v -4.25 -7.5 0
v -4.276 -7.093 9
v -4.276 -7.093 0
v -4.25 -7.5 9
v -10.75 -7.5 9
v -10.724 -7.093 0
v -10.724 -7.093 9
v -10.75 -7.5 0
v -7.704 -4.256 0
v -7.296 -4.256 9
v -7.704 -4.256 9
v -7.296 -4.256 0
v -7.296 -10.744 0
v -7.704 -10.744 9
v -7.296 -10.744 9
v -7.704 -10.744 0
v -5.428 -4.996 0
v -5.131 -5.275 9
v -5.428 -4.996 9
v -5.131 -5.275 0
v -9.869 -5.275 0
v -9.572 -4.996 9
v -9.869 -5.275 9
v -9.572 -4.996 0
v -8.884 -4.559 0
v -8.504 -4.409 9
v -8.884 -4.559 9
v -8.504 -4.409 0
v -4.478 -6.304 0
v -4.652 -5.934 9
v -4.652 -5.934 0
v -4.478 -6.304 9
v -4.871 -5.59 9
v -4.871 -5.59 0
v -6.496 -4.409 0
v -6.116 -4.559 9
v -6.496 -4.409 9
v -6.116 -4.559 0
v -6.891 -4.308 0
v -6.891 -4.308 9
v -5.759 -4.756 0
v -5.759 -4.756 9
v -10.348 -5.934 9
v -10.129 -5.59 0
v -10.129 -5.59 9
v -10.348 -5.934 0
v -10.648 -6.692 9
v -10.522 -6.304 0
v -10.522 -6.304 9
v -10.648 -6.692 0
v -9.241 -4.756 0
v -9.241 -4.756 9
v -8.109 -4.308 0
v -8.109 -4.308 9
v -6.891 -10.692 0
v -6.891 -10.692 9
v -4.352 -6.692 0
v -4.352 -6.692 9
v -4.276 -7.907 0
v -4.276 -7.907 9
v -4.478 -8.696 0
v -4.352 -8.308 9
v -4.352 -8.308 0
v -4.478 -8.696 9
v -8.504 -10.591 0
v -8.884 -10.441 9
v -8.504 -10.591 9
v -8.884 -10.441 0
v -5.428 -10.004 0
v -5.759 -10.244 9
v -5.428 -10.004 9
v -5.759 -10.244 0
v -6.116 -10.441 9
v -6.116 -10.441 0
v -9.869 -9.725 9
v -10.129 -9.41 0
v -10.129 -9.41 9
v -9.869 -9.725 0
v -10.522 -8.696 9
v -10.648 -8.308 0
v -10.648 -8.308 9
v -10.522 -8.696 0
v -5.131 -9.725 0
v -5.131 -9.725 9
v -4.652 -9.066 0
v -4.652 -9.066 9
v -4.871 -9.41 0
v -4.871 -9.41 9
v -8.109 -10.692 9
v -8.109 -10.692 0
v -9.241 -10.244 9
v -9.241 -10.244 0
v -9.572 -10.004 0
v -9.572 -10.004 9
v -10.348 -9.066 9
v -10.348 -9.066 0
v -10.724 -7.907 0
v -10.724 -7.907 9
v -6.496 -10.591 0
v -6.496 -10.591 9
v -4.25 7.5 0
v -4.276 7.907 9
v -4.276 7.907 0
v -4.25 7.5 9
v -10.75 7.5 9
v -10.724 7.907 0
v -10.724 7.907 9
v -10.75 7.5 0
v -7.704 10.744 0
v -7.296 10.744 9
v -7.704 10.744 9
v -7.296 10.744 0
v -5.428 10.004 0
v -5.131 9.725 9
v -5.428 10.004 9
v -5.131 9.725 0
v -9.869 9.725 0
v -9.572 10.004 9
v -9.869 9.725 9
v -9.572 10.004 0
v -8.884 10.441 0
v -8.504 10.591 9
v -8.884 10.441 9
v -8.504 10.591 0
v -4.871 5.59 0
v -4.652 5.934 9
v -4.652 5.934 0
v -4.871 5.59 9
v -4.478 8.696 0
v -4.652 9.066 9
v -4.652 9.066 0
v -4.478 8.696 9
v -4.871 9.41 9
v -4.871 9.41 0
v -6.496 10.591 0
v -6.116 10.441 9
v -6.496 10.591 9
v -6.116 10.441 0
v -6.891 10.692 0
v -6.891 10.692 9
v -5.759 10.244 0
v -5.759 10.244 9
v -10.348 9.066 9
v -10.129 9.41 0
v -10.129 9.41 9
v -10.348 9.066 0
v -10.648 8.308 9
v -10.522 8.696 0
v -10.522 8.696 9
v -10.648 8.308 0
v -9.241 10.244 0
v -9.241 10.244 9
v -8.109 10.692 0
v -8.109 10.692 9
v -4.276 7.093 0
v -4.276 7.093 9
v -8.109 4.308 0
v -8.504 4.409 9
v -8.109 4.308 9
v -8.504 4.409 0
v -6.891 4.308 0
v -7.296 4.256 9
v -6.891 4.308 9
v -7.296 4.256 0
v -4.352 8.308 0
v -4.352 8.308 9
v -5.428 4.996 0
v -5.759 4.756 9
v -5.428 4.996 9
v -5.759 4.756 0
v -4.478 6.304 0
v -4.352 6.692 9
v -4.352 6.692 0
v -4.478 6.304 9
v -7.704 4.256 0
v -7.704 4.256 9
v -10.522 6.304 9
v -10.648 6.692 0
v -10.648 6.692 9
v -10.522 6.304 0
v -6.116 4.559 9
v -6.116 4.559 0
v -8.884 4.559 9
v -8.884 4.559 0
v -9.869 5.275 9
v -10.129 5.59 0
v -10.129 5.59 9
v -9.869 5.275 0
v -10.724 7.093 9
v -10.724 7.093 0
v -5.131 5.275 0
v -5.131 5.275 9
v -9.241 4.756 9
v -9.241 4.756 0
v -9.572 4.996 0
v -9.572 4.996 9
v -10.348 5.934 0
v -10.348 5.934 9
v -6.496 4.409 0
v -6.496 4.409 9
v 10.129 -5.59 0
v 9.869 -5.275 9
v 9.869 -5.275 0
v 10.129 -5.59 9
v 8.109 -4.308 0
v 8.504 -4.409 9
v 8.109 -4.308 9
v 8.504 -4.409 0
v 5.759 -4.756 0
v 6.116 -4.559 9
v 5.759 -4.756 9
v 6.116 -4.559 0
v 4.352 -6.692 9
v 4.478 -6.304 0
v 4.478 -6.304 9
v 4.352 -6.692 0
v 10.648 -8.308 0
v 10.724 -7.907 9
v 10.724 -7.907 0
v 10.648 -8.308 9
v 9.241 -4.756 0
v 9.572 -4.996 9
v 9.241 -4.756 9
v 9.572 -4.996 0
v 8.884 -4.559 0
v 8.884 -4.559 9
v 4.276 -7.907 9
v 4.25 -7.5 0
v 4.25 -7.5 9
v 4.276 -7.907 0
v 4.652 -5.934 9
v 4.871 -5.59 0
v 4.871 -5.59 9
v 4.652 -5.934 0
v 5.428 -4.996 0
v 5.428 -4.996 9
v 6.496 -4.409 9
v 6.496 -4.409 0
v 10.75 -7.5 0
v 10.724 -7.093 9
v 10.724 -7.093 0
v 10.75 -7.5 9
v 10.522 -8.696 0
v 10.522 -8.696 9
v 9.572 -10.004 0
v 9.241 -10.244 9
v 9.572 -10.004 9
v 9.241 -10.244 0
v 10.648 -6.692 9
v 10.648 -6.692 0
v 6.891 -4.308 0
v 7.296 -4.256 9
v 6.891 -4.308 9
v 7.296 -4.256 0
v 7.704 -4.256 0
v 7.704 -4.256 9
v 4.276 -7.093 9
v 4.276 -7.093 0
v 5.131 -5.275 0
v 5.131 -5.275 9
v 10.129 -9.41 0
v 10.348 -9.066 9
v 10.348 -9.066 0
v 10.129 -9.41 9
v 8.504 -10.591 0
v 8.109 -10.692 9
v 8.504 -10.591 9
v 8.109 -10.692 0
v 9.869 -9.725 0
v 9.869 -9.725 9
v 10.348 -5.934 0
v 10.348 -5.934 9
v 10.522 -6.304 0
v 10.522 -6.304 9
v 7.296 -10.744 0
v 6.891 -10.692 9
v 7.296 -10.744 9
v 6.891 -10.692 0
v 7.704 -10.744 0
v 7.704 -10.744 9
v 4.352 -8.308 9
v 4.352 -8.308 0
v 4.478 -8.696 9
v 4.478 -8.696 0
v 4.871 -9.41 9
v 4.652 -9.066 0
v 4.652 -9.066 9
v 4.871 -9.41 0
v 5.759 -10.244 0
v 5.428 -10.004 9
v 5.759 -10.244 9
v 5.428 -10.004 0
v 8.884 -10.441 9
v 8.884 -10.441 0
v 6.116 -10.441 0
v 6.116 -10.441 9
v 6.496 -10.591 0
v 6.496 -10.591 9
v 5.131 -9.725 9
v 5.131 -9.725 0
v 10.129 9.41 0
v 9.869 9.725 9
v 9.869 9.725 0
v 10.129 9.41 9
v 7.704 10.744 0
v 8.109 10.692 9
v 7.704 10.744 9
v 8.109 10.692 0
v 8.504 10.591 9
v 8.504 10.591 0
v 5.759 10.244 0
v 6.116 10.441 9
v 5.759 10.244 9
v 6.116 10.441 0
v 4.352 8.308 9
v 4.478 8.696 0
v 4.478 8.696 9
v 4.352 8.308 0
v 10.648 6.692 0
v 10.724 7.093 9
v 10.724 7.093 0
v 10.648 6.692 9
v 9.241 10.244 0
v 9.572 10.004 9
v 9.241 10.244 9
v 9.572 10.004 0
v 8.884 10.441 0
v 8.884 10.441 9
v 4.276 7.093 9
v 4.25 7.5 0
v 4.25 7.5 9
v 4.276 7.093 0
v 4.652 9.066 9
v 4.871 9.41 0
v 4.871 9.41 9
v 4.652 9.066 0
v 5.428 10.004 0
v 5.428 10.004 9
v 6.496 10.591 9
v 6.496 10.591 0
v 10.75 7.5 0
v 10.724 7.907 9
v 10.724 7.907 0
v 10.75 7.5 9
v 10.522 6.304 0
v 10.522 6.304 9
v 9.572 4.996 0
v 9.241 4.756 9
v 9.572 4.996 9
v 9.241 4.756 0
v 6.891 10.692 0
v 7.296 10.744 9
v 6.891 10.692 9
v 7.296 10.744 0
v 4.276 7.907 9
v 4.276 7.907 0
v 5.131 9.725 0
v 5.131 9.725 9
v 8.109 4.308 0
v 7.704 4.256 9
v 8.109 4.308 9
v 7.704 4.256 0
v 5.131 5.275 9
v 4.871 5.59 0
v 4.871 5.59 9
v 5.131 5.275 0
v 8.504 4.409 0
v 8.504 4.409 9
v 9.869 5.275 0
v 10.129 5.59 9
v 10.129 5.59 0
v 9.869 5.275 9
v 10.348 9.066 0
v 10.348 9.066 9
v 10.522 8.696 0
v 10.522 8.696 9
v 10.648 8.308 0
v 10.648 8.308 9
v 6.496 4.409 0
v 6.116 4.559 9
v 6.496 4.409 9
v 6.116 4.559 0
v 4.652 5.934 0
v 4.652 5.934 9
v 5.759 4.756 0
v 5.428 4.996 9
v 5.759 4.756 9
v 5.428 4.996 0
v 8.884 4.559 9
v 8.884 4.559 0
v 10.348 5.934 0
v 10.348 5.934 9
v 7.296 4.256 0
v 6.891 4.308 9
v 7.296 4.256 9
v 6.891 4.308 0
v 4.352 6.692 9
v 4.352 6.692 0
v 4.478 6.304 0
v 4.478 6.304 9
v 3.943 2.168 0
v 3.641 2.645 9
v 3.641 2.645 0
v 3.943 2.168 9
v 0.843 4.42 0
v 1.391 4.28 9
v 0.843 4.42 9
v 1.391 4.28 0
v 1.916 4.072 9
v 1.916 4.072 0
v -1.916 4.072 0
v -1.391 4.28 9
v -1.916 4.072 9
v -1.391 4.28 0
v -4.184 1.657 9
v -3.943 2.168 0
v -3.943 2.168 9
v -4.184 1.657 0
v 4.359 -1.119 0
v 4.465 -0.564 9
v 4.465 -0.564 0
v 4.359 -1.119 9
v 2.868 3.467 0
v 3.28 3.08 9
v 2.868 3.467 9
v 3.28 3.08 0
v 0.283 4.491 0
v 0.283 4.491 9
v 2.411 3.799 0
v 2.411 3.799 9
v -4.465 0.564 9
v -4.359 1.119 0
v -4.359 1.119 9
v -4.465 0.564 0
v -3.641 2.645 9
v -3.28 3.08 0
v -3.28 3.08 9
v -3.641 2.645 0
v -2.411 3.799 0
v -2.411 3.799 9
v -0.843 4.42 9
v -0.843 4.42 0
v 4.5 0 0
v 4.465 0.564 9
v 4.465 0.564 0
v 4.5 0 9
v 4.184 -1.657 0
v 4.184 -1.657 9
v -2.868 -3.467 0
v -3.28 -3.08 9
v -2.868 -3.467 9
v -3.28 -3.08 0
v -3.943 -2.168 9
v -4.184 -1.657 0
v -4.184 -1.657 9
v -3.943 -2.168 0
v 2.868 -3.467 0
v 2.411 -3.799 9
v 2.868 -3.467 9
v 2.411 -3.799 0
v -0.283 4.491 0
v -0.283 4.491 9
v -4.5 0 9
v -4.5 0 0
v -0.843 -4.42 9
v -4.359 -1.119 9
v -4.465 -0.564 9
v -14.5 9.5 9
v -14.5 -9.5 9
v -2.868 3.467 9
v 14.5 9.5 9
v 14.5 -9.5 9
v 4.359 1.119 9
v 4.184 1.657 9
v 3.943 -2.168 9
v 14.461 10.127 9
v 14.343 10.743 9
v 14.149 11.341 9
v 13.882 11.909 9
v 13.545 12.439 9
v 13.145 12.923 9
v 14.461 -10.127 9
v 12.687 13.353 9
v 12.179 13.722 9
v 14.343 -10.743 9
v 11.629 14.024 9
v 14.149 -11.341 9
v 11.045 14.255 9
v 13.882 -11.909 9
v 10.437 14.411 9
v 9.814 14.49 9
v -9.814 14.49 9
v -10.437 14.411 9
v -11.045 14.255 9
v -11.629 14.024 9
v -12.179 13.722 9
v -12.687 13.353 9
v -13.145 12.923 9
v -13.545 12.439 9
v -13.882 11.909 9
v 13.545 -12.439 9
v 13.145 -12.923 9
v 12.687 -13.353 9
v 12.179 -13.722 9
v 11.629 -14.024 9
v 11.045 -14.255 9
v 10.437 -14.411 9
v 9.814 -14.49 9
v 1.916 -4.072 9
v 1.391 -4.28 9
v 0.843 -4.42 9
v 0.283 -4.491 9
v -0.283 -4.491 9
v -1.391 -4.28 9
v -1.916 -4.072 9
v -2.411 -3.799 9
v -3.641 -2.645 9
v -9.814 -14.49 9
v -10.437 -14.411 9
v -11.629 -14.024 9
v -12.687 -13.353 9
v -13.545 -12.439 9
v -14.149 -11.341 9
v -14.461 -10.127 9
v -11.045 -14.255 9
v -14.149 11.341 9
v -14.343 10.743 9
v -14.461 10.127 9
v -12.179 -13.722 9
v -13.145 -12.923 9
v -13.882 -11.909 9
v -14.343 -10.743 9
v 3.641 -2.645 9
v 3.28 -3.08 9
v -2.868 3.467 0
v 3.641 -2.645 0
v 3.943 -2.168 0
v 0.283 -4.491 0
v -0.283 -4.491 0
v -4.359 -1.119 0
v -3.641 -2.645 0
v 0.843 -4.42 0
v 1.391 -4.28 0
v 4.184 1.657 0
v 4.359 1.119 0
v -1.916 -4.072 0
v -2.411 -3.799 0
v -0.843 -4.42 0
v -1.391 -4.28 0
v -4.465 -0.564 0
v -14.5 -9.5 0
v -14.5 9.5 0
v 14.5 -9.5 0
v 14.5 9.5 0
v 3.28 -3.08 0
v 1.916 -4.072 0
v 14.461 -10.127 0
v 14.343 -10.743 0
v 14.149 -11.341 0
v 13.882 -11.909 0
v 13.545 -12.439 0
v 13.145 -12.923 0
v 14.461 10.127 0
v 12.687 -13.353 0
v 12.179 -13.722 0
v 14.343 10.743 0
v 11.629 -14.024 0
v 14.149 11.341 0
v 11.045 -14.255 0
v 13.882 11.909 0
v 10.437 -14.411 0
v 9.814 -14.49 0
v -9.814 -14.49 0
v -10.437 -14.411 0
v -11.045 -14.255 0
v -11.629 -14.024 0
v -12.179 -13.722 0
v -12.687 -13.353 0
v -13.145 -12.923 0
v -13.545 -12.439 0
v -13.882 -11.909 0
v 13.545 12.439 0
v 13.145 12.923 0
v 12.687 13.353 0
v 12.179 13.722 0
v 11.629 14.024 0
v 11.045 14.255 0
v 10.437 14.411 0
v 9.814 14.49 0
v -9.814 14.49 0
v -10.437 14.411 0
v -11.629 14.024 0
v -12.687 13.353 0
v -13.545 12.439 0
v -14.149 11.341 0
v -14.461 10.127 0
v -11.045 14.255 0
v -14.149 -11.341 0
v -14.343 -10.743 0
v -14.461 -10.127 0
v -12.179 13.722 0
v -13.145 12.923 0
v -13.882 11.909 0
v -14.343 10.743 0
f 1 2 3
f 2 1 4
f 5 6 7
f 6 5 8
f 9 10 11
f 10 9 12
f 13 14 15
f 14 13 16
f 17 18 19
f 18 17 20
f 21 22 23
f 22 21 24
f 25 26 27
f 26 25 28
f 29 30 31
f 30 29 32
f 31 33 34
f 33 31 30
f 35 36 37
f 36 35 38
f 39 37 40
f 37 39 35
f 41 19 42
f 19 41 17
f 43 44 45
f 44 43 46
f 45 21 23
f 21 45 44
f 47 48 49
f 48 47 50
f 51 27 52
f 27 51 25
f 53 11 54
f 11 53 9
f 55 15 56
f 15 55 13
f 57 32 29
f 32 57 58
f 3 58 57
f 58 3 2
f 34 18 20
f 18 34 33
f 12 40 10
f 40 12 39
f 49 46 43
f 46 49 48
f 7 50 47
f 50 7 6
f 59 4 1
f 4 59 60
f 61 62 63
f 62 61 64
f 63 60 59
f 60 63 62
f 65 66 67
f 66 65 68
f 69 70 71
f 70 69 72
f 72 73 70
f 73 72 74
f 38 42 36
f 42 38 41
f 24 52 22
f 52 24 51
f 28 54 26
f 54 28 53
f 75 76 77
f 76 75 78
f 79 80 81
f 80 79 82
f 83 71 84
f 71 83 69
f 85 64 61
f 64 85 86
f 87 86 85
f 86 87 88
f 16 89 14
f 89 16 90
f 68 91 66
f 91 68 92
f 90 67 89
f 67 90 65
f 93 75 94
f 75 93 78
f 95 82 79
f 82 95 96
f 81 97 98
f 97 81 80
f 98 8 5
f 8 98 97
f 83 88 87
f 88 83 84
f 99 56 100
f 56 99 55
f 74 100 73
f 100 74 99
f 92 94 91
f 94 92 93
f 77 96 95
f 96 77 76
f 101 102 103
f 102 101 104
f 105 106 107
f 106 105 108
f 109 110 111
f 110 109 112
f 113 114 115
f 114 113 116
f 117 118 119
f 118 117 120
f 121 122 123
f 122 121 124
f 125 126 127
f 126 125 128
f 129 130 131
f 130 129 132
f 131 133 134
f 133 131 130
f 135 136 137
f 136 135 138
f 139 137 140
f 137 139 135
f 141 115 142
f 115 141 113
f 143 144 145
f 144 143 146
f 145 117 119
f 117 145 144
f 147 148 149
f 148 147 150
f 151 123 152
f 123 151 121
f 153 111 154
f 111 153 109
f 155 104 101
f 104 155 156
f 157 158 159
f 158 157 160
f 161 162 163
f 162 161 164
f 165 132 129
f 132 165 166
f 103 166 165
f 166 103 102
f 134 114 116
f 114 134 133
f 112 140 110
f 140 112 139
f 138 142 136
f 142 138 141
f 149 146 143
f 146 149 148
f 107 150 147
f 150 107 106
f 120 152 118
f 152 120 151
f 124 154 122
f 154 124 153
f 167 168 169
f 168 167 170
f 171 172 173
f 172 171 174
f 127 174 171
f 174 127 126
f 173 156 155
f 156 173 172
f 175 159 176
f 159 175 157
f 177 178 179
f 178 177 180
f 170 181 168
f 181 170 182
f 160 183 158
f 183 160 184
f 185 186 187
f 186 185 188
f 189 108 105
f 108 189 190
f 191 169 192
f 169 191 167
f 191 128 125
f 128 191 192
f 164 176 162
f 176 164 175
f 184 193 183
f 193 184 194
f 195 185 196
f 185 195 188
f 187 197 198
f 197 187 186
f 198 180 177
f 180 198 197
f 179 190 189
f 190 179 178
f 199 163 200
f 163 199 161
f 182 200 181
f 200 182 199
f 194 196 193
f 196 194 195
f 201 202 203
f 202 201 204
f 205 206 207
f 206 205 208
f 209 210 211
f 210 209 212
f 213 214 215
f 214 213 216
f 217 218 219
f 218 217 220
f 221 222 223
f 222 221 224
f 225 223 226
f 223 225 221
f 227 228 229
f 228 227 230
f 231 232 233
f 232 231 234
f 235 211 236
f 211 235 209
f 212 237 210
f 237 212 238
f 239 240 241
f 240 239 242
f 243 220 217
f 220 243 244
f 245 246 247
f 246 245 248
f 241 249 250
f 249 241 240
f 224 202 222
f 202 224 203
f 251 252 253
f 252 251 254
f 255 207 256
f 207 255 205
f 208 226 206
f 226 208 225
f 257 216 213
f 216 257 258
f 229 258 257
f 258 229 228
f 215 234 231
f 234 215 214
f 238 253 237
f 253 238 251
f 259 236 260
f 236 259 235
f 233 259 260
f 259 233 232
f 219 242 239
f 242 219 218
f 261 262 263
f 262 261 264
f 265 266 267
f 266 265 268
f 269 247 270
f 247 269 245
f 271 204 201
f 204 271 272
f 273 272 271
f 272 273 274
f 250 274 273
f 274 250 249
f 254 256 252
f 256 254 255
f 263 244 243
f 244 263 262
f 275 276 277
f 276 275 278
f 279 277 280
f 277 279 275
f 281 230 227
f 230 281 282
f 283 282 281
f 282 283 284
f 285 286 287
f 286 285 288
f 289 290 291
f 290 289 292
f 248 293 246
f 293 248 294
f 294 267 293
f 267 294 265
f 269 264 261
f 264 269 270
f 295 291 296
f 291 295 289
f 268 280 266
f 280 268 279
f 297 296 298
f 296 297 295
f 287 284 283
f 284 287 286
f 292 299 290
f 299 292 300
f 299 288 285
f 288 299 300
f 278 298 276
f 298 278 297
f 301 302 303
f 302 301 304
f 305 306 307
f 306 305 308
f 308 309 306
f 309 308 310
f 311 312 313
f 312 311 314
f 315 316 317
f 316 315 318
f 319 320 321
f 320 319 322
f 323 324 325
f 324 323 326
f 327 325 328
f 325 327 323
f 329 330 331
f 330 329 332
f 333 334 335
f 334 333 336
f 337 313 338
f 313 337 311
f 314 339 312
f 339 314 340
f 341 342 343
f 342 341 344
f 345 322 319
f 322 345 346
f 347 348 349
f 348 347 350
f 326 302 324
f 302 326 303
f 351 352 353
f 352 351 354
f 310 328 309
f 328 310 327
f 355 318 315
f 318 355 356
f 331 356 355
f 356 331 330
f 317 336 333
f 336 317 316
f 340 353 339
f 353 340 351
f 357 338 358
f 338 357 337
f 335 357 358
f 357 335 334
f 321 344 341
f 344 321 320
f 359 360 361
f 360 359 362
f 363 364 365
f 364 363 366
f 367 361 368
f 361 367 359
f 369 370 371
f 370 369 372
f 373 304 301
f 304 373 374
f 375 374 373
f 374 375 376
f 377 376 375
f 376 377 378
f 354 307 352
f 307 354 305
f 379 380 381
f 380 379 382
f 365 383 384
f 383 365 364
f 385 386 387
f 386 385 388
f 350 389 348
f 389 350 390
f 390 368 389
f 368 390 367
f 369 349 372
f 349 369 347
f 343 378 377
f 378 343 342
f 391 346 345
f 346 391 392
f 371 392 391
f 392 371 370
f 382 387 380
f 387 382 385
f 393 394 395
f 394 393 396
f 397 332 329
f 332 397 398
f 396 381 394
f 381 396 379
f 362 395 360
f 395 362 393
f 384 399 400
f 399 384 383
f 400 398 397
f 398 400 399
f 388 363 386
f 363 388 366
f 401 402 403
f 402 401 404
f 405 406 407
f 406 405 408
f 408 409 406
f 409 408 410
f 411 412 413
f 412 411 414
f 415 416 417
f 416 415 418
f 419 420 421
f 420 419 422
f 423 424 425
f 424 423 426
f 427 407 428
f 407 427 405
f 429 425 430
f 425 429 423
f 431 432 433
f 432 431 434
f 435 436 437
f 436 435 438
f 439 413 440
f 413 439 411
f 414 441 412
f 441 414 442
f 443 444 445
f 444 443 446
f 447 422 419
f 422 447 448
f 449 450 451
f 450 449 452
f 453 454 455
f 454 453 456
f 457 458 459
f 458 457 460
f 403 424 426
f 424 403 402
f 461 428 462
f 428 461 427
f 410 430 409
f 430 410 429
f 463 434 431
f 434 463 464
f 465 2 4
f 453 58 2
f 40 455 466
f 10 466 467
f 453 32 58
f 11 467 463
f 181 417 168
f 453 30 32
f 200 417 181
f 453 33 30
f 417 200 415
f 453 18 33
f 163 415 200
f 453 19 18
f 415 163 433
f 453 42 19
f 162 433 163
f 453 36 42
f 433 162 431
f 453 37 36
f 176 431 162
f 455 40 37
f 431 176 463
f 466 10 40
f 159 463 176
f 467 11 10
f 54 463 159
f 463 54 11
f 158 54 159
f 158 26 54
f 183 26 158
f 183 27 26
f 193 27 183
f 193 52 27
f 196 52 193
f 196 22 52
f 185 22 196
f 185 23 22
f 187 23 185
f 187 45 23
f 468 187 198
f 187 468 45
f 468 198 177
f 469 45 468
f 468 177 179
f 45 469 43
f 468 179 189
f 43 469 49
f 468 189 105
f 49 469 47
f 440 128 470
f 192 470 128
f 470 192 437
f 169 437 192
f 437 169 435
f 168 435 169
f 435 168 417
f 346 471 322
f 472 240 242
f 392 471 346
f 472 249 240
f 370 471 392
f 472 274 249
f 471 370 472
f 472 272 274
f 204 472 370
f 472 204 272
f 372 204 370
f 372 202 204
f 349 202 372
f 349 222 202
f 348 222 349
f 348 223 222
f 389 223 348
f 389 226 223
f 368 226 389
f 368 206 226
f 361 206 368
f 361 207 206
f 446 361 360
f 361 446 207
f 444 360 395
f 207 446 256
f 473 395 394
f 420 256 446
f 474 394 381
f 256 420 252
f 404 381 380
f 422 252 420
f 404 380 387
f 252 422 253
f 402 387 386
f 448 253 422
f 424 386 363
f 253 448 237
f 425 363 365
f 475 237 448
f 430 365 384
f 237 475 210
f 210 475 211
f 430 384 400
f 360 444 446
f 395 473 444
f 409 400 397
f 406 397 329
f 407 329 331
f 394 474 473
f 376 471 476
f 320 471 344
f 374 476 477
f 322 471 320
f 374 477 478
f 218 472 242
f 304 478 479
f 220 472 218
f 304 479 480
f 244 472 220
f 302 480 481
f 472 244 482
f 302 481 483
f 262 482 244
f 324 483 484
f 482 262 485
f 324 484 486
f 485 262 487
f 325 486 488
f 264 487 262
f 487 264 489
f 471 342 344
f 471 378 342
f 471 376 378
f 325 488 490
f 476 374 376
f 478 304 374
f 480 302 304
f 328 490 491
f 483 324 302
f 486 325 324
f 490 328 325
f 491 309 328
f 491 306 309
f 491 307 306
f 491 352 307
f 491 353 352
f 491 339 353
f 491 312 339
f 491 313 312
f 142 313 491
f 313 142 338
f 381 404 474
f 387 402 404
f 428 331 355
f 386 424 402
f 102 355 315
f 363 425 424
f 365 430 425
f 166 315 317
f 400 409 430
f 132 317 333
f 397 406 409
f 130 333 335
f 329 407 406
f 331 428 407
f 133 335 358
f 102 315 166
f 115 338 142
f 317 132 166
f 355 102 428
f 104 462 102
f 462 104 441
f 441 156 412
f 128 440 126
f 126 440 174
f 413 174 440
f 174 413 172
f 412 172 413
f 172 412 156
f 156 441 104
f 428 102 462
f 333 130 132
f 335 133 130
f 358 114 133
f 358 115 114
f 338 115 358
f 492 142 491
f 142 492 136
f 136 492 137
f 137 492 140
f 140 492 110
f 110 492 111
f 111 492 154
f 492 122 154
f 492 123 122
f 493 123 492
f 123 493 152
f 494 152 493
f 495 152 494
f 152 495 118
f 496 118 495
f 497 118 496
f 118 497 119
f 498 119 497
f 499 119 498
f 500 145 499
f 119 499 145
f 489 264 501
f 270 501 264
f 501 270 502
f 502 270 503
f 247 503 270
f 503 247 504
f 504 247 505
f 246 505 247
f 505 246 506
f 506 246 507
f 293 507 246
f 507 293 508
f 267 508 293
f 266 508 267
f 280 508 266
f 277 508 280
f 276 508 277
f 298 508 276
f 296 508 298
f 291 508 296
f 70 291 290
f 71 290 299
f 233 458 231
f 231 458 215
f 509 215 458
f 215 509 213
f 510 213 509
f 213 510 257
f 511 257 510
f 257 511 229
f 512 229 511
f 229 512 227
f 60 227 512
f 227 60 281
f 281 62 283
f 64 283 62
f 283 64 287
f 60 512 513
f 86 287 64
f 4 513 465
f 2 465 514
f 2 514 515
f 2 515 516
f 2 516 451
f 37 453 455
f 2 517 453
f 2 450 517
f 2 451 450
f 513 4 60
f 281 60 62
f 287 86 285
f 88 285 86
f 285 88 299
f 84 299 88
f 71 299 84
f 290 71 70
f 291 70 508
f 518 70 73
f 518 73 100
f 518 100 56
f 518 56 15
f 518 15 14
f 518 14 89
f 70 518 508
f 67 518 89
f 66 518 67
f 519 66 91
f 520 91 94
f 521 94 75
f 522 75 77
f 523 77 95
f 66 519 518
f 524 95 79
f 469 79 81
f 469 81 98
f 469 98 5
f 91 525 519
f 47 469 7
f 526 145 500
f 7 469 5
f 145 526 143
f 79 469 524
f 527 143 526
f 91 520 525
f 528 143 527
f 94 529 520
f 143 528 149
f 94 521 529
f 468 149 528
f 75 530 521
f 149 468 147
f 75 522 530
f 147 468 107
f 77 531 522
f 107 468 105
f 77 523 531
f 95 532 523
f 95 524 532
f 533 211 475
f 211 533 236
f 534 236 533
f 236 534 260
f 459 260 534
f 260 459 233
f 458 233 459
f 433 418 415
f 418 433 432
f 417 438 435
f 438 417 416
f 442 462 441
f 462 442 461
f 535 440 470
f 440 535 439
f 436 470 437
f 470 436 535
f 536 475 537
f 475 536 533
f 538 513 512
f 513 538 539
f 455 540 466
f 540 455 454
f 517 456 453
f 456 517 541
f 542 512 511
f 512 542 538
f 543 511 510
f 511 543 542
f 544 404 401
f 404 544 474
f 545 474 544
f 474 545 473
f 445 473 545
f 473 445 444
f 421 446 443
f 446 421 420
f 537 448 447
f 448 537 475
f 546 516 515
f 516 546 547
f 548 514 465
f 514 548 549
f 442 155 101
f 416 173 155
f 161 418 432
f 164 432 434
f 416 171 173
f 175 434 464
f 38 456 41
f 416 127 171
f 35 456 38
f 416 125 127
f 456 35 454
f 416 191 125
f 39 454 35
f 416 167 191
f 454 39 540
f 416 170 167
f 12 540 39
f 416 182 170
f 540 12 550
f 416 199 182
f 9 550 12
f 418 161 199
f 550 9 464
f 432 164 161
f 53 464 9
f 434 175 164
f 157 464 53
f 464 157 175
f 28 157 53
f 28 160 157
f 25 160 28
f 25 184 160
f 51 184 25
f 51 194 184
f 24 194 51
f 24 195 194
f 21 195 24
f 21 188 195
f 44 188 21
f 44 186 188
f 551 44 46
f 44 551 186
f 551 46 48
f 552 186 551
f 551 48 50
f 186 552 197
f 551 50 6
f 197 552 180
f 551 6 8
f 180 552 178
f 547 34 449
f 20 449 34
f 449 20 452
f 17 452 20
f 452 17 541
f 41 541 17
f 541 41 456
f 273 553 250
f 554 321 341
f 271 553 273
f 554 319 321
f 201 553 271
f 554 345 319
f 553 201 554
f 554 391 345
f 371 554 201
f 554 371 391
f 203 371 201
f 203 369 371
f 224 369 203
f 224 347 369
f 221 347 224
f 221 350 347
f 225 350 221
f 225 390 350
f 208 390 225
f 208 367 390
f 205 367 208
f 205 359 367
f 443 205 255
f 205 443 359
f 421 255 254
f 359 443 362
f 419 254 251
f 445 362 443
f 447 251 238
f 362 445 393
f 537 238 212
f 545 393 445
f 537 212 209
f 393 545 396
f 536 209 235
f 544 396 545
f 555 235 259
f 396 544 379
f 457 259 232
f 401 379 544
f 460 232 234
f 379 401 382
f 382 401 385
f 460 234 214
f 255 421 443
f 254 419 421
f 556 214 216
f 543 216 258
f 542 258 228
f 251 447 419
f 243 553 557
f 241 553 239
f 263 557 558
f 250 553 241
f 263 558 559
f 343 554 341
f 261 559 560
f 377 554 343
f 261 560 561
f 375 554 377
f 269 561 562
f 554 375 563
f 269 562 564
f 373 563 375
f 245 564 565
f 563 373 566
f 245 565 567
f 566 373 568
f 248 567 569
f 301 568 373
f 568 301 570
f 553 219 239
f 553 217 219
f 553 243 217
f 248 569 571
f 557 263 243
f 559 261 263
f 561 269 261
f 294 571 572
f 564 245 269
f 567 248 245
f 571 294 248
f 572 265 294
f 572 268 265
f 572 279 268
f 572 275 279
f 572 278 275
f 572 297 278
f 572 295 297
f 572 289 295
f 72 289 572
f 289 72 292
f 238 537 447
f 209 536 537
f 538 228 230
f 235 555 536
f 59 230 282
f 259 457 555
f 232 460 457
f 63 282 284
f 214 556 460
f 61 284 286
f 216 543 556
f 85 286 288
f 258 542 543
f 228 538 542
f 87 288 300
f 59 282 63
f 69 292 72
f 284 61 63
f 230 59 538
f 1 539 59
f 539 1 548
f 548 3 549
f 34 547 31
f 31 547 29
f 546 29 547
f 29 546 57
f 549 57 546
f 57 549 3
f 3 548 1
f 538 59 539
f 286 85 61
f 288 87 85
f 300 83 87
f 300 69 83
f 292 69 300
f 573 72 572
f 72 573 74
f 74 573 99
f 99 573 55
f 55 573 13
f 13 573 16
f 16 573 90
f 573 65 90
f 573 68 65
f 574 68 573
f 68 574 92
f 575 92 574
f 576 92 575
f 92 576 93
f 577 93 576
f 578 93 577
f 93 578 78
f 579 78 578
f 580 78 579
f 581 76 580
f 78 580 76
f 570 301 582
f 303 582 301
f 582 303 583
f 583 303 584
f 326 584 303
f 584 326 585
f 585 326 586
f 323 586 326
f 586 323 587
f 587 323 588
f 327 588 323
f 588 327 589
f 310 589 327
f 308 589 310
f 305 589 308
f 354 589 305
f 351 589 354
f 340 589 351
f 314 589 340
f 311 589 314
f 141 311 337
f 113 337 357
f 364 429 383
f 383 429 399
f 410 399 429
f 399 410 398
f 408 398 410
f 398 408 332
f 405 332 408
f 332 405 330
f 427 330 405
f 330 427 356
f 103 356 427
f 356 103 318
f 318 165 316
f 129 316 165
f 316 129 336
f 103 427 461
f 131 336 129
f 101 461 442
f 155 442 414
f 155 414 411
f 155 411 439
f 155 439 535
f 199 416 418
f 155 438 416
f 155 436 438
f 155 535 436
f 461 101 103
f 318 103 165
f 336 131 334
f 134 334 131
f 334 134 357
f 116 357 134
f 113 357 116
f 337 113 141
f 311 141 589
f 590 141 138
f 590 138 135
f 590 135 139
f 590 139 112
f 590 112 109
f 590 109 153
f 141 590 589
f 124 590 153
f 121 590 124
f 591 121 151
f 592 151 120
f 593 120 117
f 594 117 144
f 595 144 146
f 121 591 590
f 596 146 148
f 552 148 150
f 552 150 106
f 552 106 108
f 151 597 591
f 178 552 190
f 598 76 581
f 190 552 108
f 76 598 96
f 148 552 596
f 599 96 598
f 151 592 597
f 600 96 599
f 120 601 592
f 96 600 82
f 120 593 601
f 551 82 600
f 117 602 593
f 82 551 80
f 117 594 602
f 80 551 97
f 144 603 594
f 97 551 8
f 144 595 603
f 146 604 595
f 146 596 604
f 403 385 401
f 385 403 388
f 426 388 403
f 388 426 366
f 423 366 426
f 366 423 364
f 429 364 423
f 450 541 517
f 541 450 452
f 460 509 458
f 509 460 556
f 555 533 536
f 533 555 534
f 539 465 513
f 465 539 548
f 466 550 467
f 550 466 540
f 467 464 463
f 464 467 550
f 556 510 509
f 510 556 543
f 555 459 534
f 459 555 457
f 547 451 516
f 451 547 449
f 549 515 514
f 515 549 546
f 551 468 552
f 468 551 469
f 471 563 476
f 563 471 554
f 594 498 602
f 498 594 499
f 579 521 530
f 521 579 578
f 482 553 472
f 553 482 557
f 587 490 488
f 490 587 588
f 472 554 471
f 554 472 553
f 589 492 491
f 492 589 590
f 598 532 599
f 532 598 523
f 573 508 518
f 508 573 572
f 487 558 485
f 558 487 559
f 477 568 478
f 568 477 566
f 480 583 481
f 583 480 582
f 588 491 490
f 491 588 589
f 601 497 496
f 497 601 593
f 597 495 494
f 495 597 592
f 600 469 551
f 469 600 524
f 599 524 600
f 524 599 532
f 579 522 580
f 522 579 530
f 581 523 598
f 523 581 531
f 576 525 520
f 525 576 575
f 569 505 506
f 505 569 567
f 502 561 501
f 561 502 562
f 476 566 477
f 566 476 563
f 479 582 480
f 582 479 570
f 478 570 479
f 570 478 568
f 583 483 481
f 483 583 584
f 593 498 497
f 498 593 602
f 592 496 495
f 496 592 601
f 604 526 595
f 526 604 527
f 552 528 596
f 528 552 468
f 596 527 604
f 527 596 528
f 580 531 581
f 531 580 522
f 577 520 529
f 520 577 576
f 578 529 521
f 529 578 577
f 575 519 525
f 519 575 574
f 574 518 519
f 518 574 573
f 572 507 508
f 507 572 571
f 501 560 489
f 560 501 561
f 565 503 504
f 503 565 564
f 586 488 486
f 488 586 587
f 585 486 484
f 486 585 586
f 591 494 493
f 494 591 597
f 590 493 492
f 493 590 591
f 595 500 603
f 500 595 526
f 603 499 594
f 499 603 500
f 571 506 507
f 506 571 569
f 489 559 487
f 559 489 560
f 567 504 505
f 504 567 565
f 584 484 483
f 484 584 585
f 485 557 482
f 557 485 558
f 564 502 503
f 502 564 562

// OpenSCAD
$fn = 50;


difference() {
	union() {
		hull() {
			translate(v = [-9.5000000000, 9.5000000000, 0]) {
				cylinder(h = 9, r = 5);
			}
			translate(v = [9.5000000000, 9.5000000000, 0]) {
				cylinder(h = 9, r = 5);
			}
			translate(v = [-9.5000000000, -9.5000000000, 0]) {
				cylinder(h = 9, r = 5);
			}
			translate(v = [9.5000000000, -9.5000000000, 0]) {
				cylinder(h = 9, r = 5);
			}
		}
	}
	union() {
		#translate(v = [-7.5000000000, -7.5000000000, -100.0000000000]) {
			cylinder(h = 200, r = 3.2500000000);
		}
		#translate(v = [-7.5000000000, 7.5000000000, -100.0000000000]) {
			cylinder(h = 200, r = 3.2500000000);
		}
		#translate(v = [7.5000000000, -7.5000000000, -100.0000000000]) {
			cylinder(h = 200, r = 3.2500000000);
		}
		#translate(v = [7.5000000000, 7.5000000000, -100.0000000000]) {
			cylinder(h = 200, r = 3.2500000000);
		}
		#cylinder(h = 9, r = 4.5000000000);
	}
}
